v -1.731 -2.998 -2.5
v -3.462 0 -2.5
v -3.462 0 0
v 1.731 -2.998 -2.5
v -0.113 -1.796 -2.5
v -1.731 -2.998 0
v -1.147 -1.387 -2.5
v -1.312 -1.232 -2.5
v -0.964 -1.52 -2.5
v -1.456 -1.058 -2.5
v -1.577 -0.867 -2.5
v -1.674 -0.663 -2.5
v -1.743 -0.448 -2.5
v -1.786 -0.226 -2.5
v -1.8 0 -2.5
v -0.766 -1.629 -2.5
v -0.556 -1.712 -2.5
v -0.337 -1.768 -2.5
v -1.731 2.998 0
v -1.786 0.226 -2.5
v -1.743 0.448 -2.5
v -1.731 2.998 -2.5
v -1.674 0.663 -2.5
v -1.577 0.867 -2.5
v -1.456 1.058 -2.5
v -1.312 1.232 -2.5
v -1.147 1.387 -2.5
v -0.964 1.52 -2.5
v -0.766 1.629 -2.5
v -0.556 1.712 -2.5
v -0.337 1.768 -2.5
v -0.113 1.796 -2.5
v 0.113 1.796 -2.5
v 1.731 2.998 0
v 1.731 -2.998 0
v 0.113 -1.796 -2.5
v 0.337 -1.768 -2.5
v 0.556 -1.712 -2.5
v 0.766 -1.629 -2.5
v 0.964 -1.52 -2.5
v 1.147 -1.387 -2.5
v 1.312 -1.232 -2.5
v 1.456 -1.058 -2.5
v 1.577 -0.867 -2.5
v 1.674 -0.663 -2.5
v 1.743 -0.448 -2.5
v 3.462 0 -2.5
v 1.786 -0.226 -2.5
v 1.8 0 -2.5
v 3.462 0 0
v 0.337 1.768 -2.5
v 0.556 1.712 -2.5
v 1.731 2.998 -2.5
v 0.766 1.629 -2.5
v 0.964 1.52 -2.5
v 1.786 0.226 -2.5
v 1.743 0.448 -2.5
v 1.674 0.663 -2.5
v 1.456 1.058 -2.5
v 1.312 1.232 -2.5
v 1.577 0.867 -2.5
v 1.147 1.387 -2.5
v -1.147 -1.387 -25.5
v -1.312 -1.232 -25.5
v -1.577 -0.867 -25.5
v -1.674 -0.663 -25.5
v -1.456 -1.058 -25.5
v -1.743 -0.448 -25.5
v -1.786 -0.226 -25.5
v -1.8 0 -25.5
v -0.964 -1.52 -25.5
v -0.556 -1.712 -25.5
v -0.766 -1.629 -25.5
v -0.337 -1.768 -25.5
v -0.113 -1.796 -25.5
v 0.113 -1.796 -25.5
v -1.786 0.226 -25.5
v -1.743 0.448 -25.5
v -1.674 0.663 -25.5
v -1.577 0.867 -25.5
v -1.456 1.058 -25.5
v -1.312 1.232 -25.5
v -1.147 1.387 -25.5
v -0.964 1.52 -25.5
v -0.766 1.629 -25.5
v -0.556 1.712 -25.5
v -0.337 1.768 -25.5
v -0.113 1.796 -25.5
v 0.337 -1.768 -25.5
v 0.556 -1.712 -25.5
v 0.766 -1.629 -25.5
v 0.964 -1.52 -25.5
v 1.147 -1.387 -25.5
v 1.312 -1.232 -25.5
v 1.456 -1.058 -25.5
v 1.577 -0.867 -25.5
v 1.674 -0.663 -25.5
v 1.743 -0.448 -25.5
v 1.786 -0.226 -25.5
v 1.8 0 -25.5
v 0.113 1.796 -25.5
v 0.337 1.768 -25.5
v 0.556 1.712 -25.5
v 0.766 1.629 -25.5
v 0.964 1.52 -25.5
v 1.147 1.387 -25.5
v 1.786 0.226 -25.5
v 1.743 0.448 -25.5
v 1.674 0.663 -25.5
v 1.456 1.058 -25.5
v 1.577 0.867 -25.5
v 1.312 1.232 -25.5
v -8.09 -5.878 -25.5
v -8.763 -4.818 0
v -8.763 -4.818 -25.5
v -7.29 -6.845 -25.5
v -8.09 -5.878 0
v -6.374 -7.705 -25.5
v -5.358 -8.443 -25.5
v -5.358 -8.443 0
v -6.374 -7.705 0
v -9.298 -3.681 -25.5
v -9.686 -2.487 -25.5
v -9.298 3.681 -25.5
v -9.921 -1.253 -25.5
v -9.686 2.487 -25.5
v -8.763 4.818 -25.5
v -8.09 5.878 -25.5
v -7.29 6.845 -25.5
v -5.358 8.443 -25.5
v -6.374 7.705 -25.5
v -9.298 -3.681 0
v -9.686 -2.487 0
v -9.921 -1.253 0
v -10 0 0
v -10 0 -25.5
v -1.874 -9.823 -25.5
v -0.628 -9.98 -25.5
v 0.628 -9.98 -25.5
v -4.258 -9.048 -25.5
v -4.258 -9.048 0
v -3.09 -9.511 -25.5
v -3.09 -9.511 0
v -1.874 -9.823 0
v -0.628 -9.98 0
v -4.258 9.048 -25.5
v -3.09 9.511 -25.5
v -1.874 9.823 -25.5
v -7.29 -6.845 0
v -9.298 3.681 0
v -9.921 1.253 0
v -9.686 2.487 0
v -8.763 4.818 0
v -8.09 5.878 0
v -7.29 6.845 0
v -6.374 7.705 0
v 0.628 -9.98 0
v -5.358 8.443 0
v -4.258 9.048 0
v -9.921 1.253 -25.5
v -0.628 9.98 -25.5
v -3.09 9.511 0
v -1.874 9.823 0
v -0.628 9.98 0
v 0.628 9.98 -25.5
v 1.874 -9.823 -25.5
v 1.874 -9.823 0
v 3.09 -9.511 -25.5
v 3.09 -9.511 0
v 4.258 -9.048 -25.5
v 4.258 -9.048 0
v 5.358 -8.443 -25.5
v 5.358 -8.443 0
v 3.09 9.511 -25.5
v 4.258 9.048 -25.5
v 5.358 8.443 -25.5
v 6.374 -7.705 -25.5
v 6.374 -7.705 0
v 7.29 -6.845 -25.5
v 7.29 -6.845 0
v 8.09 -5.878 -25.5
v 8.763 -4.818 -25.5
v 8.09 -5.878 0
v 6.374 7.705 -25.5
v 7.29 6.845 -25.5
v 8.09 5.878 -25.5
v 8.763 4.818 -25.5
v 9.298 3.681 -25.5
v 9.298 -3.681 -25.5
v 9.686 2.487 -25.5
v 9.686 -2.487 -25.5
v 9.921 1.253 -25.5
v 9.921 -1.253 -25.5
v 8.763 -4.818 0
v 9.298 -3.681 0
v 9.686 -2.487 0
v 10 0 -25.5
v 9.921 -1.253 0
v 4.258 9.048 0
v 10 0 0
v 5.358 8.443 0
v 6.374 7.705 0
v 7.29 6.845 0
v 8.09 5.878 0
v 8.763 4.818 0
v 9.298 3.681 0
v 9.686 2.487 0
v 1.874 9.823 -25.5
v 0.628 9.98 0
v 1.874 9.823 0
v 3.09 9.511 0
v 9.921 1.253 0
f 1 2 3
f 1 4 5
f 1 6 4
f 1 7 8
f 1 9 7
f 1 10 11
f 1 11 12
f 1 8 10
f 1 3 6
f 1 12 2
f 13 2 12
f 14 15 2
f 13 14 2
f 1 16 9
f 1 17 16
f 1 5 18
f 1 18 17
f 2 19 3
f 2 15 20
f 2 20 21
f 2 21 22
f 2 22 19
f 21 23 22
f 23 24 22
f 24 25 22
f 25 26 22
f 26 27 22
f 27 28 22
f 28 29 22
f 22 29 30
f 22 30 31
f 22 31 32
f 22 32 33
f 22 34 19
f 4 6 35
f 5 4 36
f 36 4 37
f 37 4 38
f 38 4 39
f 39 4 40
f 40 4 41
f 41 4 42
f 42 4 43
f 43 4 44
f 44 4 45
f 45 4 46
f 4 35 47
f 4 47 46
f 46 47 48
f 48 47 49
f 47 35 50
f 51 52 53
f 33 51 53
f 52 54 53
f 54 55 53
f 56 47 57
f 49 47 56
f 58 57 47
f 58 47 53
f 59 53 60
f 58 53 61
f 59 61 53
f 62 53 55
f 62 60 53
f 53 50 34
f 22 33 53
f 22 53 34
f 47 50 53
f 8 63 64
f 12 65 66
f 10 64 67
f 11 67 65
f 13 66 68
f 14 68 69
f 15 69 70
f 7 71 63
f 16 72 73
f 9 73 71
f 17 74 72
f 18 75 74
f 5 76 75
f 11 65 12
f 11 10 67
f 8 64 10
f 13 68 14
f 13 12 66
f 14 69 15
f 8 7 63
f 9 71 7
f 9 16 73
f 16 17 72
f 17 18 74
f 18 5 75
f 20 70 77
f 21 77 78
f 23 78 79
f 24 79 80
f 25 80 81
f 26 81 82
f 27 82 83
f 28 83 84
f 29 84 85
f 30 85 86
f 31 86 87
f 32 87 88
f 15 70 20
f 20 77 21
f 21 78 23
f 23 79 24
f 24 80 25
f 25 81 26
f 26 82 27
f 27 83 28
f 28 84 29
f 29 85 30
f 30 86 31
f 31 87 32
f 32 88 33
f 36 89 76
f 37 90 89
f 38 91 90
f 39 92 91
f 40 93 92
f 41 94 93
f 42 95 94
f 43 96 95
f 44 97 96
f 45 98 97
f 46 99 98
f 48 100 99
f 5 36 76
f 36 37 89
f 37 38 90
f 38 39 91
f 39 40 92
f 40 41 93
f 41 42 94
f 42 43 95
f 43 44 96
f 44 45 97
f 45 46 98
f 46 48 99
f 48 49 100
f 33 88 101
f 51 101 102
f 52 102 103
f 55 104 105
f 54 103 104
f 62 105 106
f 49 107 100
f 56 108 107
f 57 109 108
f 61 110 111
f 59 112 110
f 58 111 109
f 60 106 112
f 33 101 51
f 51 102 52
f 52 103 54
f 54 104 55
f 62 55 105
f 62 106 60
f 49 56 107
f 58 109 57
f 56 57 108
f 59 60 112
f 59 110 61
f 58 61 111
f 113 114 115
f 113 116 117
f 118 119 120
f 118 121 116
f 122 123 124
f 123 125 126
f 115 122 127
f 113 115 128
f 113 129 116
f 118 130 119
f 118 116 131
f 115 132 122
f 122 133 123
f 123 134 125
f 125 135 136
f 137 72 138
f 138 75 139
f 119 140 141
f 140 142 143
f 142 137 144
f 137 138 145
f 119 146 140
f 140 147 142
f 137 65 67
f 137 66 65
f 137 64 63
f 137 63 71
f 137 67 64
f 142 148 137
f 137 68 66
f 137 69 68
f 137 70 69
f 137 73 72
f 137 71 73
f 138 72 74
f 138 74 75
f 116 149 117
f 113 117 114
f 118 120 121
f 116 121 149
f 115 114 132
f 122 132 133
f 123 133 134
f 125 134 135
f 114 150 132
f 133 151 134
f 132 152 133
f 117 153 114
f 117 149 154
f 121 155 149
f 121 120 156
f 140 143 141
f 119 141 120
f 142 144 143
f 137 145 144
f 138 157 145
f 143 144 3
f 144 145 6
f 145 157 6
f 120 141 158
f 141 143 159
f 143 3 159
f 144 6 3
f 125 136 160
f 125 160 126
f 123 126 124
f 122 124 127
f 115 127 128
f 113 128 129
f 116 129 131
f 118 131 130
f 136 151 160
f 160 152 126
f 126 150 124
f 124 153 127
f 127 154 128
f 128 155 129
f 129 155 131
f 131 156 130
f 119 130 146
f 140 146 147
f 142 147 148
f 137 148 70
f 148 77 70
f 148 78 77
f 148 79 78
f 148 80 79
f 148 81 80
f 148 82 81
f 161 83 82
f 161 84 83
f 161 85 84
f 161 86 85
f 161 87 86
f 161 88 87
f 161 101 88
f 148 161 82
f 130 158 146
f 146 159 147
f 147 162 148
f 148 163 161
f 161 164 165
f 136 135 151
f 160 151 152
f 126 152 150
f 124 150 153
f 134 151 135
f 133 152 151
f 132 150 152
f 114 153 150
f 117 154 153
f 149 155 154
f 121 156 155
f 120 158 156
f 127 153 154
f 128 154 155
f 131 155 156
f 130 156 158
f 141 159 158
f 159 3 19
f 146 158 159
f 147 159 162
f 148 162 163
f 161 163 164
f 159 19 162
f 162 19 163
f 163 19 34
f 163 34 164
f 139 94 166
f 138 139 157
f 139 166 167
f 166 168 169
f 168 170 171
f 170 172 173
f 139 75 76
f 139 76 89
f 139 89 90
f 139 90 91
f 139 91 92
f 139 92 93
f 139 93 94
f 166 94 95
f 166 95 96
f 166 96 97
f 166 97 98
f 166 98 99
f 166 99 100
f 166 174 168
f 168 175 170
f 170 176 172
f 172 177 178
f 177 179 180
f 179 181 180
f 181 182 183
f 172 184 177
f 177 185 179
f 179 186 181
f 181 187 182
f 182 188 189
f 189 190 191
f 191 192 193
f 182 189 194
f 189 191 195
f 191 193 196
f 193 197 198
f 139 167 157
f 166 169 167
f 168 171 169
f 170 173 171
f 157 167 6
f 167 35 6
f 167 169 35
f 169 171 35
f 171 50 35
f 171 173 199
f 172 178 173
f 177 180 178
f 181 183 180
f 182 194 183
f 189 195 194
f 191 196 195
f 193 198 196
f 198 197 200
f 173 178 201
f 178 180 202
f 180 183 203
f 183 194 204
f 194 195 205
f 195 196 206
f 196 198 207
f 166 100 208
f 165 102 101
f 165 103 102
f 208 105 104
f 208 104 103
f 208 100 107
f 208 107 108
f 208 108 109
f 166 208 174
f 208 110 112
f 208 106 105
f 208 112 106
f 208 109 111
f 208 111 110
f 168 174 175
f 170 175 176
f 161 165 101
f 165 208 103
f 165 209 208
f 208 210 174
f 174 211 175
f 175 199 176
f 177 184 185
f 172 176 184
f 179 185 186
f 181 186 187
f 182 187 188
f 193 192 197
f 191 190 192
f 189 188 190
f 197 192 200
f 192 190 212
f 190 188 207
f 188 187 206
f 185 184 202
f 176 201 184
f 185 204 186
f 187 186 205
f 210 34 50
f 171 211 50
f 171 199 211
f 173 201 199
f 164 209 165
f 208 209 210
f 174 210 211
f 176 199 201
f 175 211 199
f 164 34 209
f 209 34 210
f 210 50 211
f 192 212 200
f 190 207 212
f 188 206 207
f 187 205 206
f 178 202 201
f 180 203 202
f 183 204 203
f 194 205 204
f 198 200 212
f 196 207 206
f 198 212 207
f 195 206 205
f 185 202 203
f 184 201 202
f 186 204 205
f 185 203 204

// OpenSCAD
$fn = 50;


difference() {
	union() {
		translate(v = [0, 0, -25.5000000000]) {
			cylinder(h = 25.5000000000, r = 10.0000000000);
		}
	}
	union() {
		translate(v = [0, 0, 0]) {
			rotate(a = [0, 0, 0]) {
				difference() {
					union() {
						translate(v = [0, 0, -2.5000000000]) {
							linear_extrude(height = 2.5000000000) {
								polygon(points = [[3.4620000000, 0.0000000000], [1.7310000000, 2.9981799479], [-1.7310000000, 2.9981799479], [-3.4620000000, 0.0000000000], [-1.7310000000, -2.9981799479], [1.7310000000, -2.9981799479]]);
							}
						}
					}
					union();
				}
			}
		}
		#translate(v = [0, 0, -100.0000000000]) {
			cylinder(h = 200, r = 1.8000000000);
		}
	}
}
